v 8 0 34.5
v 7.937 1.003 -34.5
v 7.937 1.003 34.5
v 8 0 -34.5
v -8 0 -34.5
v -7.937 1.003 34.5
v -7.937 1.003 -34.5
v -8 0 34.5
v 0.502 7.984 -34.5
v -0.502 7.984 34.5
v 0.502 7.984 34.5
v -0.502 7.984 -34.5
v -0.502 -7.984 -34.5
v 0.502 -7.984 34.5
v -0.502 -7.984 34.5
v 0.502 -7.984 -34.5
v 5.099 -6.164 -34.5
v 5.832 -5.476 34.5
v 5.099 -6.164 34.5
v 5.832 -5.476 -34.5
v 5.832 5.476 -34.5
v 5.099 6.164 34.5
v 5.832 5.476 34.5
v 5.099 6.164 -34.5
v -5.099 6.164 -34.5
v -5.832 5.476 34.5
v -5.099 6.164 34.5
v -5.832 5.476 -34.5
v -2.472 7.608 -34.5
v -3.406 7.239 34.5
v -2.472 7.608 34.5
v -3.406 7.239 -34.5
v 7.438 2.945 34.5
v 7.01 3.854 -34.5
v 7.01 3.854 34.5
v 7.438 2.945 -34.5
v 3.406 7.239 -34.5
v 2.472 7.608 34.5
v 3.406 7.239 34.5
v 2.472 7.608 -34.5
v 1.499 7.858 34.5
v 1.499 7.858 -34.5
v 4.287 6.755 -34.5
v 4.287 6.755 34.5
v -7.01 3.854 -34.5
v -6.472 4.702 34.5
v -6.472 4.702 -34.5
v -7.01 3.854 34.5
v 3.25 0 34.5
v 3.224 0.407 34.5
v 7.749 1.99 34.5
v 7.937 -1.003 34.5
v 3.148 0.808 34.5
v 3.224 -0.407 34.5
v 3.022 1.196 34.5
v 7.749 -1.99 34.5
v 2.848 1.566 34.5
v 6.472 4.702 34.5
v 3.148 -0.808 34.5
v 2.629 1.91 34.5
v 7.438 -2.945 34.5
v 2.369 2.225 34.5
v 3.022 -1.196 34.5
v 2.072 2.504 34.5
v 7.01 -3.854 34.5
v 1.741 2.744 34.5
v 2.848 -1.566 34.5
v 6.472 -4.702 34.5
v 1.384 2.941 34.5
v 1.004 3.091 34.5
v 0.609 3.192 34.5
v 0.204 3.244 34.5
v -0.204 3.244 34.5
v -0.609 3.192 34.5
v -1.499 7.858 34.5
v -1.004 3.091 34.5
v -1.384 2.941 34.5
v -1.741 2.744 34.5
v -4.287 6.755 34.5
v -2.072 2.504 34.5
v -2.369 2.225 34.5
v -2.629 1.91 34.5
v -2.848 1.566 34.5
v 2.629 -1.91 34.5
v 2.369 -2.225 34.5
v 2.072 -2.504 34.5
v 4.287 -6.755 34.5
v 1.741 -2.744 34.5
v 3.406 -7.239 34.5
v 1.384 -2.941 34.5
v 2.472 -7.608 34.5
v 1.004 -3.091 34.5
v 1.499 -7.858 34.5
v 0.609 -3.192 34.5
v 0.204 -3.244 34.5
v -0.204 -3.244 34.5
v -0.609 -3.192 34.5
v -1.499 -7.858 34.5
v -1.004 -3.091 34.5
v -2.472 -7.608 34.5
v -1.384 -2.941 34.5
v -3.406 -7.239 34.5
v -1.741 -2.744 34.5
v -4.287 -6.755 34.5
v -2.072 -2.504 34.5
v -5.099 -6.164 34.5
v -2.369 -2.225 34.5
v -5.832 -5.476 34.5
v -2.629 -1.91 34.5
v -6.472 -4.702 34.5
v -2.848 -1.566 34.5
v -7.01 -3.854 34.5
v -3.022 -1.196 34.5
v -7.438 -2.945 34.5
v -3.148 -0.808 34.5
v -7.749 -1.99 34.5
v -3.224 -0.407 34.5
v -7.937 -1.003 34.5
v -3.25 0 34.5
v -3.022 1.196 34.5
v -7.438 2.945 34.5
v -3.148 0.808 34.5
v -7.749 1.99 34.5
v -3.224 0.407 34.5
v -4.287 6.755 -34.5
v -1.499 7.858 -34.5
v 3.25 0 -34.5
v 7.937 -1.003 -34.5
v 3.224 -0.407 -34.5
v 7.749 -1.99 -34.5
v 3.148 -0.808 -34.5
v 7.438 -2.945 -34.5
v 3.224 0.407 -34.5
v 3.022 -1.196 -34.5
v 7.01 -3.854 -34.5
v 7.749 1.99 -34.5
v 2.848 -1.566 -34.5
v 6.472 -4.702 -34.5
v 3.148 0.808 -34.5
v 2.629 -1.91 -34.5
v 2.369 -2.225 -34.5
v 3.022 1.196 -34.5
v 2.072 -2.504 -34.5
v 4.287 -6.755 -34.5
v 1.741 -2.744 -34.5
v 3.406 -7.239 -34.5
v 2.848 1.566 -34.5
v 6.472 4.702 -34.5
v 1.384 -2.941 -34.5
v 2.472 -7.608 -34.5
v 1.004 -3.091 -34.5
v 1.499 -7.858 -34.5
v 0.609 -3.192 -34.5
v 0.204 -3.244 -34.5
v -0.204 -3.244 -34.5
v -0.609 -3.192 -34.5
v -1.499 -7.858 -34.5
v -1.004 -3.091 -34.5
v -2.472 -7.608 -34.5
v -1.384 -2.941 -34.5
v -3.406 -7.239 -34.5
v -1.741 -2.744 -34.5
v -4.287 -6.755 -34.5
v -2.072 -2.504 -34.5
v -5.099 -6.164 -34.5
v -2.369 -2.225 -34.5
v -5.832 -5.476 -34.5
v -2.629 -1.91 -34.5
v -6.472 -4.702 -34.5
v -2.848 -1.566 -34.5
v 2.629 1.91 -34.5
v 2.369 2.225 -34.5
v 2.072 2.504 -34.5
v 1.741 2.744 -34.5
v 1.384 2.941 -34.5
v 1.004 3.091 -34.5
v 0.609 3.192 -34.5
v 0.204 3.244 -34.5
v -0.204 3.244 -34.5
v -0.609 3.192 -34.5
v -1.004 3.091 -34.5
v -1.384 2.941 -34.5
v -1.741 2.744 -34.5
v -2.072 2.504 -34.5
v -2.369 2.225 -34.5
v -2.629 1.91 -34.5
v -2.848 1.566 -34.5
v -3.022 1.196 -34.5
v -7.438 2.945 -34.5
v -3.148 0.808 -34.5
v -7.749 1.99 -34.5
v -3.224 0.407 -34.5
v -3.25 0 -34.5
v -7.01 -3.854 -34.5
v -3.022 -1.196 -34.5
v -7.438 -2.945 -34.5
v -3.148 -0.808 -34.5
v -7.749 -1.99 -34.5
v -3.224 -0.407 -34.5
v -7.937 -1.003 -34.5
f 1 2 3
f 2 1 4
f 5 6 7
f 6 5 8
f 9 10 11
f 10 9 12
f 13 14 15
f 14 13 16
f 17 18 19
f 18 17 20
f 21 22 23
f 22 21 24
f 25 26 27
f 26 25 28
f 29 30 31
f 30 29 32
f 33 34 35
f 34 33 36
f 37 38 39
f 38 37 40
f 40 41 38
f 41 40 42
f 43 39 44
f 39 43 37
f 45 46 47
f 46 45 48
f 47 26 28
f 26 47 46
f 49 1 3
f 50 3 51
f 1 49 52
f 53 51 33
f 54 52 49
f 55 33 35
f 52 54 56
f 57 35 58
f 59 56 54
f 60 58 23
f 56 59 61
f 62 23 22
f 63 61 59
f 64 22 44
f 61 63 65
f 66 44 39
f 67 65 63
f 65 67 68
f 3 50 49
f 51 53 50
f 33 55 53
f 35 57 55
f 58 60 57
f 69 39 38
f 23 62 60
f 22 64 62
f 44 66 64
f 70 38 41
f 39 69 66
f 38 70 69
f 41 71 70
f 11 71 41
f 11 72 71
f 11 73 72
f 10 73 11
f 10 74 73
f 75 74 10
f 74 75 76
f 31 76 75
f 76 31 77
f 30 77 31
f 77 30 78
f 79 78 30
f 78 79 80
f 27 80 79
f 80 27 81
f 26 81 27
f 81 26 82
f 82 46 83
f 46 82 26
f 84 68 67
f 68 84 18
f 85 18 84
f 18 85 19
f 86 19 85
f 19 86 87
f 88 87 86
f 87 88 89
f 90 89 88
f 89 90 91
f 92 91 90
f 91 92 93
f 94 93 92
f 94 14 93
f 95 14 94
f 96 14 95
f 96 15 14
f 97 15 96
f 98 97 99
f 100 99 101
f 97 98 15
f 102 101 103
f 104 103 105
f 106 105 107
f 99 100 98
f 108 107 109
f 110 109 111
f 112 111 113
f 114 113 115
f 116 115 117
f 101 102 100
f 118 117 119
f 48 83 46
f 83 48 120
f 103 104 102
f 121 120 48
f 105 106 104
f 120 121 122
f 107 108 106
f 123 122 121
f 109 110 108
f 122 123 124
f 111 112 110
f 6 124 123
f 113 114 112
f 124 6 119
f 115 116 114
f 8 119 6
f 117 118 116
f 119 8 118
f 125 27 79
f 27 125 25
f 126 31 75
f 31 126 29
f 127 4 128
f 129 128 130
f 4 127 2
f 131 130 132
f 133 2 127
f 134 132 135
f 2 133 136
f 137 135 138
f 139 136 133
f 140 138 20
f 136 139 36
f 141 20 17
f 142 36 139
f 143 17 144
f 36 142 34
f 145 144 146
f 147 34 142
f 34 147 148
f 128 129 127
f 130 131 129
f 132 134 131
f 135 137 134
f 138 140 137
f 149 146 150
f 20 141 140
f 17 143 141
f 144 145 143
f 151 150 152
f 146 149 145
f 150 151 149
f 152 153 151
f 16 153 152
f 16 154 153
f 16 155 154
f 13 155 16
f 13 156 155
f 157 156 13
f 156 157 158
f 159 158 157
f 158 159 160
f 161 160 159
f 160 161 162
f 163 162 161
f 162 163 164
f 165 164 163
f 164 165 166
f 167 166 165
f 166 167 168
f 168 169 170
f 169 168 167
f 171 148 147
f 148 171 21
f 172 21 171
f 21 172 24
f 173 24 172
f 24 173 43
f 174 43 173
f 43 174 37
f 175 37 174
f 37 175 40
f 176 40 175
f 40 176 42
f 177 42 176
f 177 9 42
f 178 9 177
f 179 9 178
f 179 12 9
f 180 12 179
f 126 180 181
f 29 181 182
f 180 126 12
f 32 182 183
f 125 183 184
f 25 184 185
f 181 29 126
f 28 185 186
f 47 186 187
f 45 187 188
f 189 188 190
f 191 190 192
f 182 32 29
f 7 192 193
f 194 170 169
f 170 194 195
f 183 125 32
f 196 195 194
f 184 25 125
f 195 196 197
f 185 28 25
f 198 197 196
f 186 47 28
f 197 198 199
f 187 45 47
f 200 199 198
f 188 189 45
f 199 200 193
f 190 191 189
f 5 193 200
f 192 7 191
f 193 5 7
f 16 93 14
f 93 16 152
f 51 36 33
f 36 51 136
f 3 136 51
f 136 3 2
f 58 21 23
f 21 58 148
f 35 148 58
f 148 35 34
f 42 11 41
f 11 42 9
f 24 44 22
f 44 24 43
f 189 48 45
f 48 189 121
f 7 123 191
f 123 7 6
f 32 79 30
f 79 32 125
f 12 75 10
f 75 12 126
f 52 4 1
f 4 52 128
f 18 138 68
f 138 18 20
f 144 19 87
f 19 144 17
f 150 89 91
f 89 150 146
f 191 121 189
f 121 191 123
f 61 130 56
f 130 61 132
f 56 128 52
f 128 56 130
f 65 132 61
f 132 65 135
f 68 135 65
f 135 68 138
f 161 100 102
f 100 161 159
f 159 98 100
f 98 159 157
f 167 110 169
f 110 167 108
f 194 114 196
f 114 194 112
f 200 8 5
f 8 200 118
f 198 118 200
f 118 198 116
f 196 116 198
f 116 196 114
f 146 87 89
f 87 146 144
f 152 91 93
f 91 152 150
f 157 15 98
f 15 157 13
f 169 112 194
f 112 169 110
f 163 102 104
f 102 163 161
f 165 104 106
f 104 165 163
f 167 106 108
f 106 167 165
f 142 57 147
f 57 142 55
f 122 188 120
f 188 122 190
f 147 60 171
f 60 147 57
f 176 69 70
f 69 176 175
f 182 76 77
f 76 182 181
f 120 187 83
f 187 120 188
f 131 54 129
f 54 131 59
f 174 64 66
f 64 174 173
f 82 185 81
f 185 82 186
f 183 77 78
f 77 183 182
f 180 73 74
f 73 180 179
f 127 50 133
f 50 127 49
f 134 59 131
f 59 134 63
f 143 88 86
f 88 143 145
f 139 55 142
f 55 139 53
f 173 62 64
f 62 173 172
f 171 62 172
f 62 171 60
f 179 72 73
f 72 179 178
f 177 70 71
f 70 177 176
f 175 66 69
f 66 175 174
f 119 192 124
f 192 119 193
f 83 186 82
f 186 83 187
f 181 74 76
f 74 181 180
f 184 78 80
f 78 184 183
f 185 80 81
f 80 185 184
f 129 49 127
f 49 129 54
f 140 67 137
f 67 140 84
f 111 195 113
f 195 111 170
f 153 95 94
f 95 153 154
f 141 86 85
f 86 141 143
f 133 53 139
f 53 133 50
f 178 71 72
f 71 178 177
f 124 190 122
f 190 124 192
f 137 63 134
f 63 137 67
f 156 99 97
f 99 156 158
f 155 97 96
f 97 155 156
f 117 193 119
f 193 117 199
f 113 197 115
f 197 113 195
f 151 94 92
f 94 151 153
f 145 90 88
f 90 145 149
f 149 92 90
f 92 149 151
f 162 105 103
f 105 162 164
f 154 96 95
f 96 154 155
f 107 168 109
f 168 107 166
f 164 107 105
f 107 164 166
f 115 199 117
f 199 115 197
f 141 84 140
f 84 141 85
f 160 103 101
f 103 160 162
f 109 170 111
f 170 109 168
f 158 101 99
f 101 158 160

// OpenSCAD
$fn = 50;


difference() {
	union() {
		translate(v = [0, 0, -34.5000000000]) {
			cylinder(h = 69, r = 8.0000000000);
		}
	}
	union() {
		translate(v = [0, 0, -100.0000000000]) {
			cylinder(h = 200, r = 3.2500000000);
		}
	}
}
